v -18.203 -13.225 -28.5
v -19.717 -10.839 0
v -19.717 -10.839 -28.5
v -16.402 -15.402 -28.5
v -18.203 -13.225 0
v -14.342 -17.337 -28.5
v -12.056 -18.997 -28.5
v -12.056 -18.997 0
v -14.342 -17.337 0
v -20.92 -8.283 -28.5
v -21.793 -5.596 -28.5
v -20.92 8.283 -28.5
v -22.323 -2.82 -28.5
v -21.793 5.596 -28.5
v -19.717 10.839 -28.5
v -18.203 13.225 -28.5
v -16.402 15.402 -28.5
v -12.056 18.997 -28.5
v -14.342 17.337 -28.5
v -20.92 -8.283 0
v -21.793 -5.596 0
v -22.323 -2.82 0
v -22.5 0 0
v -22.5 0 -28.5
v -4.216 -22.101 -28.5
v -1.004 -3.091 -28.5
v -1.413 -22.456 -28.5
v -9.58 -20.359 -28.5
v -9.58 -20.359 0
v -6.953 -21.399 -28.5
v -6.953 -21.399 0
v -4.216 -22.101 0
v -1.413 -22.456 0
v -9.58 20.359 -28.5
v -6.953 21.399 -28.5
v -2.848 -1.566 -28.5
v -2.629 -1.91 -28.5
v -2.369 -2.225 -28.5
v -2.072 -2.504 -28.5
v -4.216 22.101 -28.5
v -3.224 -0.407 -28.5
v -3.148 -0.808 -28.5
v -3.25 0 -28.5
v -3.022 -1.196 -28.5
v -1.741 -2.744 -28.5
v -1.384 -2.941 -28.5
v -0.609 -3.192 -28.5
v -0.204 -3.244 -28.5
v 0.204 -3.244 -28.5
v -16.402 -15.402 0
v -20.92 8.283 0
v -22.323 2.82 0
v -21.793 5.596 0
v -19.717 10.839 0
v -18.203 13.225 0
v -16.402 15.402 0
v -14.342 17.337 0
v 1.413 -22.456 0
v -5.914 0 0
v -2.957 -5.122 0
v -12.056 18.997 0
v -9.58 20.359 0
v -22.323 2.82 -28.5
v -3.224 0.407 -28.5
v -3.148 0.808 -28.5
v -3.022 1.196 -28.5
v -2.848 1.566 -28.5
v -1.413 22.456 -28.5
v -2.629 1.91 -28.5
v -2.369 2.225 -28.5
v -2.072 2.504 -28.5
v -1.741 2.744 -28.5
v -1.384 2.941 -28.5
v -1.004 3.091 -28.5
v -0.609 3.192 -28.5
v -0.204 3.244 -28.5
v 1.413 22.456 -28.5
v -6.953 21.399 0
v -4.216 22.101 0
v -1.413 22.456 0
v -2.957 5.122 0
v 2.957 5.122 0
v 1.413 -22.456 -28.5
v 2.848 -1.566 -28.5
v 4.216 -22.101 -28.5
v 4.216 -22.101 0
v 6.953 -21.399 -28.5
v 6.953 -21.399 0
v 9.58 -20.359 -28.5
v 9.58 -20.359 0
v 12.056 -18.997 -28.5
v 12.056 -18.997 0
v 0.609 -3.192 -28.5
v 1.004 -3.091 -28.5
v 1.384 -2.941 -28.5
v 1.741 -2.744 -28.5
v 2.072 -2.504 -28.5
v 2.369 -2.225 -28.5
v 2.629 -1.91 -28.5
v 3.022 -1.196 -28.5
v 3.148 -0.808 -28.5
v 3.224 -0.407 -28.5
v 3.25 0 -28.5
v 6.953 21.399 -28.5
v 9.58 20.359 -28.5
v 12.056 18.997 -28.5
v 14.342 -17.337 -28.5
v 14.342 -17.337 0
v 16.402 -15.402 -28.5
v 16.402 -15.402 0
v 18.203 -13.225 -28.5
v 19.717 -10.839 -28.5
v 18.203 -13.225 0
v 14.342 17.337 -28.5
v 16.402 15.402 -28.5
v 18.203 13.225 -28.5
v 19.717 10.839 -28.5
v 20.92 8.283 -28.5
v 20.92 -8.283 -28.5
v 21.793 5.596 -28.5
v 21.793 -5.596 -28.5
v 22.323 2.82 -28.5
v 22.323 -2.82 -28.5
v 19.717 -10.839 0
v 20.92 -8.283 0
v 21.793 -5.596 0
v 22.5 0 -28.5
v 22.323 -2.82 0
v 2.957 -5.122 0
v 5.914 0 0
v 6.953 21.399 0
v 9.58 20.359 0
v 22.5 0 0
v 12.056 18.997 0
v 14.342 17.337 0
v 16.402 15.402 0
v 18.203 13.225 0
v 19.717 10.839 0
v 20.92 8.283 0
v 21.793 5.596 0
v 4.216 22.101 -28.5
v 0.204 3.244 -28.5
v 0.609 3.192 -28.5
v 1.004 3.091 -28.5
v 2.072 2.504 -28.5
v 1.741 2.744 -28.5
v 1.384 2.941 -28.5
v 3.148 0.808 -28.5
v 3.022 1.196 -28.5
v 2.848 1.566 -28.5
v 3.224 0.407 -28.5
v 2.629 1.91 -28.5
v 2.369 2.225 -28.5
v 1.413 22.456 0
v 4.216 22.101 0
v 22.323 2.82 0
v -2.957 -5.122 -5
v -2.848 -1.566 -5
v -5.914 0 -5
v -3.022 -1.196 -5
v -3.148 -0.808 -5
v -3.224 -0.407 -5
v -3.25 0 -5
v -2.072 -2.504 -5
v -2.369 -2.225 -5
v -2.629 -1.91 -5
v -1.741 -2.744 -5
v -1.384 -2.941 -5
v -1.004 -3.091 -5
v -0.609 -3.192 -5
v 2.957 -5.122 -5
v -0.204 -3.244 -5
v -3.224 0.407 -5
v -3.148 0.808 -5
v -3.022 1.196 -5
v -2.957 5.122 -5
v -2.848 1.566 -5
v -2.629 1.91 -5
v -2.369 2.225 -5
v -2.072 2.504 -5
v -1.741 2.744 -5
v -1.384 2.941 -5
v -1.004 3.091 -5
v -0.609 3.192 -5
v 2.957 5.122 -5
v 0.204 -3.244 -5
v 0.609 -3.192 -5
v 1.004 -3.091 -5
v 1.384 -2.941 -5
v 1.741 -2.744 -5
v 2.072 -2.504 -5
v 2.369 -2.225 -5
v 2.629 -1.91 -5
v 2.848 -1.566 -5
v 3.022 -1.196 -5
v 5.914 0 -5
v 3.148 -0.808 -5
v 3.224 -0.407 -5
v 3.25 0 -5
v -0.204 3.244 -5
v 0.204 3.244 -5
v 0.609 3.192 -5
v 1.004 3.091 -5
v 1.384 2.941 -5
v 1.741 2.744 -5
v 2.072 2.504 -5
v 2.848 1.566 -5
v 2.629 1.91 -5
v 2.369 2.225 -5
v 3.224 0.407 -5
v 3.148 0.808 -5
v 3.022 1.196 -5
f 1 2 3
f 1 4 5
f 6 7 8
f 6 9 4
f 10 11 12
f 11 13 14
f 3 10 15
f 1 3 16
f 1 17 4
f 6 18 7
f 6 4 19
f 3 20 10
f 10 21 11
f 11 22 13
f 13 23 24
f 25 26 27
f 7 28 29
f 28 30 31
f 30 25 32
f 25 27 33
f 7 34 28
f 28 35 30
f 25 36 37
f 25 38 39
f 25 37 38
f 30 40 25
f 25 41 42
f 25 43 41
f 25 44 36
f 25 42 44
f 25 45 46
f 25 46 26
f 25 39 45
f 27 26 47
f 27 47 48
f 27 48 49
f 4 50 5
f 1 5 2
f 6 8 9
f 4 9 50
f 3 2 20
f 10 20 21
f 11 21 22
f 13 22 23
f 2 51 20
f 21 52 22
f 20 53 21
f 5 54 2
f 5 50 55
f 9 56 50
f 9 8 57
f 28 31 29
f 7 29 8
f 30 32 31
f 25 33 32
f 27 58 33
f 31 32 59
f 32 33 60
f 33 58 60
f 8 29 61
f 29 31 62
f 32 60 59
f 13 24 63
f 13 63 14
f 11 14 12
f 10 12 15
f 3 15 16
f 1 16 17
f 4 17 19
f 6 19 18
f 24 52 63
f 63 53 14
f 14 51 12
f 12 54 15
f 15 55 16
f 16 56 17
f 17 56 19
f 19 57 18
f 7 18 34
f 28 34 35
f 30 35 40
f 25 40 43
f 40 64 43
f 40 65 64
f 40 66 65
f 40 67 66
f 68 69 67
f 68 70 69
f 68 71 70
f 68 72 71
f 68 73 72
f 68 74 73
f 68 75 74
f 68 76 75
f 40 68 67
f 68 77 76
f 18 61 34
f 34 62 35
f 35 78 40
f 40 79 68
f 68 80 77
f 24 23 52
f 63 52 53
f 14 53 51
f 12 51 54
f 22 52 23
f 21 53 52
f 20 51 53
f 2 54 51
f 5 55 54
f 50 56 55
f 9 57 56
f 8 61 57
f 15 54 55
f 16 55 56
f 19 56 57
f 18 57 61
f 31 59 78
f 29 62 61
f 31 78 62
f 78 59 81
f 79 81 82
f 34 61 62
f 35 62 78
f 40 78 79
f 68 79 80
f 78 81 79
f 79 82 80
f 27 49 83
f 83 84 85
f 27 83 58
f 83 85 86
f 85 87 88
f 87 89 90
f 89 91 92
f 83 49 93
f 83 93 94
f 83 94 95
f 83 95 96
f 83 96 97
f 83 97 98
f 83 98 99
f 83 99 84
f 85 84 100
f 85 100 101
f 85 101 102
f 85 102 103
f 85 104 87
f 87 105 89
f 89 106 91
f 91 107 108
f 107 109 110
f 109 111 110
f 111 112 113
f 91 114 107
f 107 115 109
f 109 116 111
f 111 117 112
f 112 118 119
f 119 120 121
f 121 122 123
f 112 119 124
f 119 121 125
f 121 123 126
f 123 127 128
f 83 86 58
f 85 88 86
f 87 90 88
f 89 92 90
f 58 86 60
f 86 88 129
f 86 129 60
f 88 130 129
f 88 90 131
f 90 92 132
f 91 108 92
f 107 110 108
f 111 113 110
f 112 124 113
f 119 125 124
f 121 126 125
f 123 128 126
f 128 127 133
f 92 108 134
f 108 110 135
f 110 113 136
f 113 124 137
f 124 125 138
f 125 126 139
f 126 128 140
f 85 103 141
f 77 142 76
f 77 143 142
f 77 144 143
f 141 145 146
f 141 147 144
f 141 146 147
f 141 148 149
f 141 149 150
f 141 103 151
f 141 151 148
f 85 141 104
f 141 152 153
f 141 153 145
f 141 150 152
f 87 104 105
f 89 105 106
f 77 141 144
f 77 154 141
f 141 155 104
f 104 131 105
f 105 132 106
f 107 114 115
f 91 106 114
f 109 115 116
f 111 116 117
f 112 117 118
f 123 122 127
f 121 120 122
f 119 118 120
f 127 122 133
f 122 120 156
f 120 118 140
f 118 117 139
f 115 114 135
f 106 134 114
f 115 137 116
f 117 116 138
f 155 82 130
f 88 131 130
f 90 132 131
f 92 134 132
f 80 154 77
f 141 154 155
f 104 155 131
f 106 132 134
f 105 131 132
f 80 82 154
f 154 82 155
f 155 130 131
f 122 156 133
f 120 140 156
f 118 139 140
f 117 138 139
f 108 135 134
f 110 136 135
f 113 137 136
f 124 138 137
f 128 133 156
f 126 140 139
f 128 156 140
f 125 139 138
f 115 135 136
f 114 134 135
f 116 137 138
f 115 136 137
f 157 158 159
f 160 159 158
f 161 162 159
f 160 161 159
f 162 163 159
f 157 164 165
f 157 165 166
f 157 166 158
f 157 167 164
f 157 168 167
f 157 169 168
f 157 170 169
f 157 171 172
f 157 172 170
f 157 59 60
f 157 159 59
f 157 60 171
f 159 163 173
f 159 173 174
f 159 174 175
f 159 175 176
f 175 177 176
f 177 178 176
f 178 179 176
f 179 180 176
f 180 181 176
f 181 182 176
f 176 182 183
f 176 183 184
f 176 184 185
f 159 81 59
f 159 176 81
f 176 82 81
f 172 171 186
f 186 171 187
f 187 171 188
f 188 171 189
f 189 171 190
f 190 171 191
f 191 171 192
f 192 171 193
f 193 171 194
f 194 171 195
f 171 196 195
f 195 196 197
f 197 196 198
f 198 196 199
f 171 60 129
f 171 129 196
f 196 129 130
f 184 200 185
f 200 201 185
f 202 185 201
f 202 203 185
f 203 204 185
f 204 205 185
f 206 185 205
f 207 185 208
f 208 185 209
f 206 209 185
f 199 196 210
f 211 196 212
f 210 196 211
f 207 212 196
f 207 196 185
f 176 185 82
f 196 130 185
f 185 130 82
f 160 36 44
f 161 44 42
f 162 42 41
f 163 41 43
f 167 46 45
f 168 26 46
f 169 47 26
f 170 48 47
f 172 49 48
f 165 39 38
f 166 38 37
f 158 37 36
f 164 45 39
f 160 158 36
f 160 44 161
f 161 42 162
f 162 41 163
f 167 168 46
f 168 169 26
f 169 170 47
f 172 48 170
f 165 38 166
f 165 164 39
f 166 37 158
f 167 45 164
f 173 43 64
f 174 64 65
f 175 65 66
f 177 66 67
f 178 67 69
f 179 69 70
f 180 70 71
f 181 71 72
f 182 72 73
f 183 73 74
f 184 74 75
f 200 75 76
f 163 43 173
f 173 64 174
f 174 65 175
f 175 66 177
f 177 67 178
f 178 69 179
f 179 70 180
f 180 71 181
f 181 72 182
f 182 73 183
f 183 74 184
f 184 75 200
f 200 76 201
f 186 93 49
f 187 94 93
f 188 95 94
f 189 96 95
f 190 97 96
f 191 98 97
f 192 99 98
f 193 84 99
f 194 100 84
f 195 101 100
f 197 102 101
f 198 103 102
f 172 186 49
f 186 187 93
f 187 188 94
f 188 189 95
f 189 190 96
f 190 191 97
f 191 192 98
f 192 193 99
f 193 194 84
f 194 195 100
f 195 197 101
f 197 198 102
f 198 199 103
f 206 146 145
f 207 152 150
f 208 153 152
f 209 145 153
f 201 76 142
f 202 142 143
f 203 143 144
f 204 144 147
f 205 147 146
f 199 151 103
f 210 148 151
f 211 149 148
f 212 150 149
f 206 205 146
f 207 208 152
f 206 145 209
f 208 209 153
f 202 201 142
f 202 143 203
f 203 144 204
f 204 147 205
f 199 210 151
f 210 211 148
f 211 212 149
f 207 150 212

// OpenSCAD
$fn = 50;


difference() {
	union() {
		translate(v = [0, 0, -28.5000000000]) {
			cylinder(h = 28.5000000000, r = 22.5000000000);
		}
		#translate(v = [0, 0, -30.0000000000]) {
			cylinder(h = 30, r = 2.8750000000);
		}
	}
	union() {
		translate(v = [0, 0, 0]) {
			rotate(a = [0, 0, 0]) {
				difference() {
					union() {
						translate(v = [0, 0, -5]) {
							linear_extrude(height = 5) {
								polygon(points = [[5.9142500000, 0.0000000000], [2.9571250000, 5.1218907443], [-2.9571250000, 5.1218907443], [-5.9142500000, 0.0000000000], [-2.9571250000, -5.1218907443], [2.9571250000, -5.1218907443]]);
							}
						}
					}
					union();
				}
			}
		}
		#translate(v = [0, 0, -100.0000000000]) {
			cylinder(h = 200, r = 3.2500000000);
		}
	}
}
